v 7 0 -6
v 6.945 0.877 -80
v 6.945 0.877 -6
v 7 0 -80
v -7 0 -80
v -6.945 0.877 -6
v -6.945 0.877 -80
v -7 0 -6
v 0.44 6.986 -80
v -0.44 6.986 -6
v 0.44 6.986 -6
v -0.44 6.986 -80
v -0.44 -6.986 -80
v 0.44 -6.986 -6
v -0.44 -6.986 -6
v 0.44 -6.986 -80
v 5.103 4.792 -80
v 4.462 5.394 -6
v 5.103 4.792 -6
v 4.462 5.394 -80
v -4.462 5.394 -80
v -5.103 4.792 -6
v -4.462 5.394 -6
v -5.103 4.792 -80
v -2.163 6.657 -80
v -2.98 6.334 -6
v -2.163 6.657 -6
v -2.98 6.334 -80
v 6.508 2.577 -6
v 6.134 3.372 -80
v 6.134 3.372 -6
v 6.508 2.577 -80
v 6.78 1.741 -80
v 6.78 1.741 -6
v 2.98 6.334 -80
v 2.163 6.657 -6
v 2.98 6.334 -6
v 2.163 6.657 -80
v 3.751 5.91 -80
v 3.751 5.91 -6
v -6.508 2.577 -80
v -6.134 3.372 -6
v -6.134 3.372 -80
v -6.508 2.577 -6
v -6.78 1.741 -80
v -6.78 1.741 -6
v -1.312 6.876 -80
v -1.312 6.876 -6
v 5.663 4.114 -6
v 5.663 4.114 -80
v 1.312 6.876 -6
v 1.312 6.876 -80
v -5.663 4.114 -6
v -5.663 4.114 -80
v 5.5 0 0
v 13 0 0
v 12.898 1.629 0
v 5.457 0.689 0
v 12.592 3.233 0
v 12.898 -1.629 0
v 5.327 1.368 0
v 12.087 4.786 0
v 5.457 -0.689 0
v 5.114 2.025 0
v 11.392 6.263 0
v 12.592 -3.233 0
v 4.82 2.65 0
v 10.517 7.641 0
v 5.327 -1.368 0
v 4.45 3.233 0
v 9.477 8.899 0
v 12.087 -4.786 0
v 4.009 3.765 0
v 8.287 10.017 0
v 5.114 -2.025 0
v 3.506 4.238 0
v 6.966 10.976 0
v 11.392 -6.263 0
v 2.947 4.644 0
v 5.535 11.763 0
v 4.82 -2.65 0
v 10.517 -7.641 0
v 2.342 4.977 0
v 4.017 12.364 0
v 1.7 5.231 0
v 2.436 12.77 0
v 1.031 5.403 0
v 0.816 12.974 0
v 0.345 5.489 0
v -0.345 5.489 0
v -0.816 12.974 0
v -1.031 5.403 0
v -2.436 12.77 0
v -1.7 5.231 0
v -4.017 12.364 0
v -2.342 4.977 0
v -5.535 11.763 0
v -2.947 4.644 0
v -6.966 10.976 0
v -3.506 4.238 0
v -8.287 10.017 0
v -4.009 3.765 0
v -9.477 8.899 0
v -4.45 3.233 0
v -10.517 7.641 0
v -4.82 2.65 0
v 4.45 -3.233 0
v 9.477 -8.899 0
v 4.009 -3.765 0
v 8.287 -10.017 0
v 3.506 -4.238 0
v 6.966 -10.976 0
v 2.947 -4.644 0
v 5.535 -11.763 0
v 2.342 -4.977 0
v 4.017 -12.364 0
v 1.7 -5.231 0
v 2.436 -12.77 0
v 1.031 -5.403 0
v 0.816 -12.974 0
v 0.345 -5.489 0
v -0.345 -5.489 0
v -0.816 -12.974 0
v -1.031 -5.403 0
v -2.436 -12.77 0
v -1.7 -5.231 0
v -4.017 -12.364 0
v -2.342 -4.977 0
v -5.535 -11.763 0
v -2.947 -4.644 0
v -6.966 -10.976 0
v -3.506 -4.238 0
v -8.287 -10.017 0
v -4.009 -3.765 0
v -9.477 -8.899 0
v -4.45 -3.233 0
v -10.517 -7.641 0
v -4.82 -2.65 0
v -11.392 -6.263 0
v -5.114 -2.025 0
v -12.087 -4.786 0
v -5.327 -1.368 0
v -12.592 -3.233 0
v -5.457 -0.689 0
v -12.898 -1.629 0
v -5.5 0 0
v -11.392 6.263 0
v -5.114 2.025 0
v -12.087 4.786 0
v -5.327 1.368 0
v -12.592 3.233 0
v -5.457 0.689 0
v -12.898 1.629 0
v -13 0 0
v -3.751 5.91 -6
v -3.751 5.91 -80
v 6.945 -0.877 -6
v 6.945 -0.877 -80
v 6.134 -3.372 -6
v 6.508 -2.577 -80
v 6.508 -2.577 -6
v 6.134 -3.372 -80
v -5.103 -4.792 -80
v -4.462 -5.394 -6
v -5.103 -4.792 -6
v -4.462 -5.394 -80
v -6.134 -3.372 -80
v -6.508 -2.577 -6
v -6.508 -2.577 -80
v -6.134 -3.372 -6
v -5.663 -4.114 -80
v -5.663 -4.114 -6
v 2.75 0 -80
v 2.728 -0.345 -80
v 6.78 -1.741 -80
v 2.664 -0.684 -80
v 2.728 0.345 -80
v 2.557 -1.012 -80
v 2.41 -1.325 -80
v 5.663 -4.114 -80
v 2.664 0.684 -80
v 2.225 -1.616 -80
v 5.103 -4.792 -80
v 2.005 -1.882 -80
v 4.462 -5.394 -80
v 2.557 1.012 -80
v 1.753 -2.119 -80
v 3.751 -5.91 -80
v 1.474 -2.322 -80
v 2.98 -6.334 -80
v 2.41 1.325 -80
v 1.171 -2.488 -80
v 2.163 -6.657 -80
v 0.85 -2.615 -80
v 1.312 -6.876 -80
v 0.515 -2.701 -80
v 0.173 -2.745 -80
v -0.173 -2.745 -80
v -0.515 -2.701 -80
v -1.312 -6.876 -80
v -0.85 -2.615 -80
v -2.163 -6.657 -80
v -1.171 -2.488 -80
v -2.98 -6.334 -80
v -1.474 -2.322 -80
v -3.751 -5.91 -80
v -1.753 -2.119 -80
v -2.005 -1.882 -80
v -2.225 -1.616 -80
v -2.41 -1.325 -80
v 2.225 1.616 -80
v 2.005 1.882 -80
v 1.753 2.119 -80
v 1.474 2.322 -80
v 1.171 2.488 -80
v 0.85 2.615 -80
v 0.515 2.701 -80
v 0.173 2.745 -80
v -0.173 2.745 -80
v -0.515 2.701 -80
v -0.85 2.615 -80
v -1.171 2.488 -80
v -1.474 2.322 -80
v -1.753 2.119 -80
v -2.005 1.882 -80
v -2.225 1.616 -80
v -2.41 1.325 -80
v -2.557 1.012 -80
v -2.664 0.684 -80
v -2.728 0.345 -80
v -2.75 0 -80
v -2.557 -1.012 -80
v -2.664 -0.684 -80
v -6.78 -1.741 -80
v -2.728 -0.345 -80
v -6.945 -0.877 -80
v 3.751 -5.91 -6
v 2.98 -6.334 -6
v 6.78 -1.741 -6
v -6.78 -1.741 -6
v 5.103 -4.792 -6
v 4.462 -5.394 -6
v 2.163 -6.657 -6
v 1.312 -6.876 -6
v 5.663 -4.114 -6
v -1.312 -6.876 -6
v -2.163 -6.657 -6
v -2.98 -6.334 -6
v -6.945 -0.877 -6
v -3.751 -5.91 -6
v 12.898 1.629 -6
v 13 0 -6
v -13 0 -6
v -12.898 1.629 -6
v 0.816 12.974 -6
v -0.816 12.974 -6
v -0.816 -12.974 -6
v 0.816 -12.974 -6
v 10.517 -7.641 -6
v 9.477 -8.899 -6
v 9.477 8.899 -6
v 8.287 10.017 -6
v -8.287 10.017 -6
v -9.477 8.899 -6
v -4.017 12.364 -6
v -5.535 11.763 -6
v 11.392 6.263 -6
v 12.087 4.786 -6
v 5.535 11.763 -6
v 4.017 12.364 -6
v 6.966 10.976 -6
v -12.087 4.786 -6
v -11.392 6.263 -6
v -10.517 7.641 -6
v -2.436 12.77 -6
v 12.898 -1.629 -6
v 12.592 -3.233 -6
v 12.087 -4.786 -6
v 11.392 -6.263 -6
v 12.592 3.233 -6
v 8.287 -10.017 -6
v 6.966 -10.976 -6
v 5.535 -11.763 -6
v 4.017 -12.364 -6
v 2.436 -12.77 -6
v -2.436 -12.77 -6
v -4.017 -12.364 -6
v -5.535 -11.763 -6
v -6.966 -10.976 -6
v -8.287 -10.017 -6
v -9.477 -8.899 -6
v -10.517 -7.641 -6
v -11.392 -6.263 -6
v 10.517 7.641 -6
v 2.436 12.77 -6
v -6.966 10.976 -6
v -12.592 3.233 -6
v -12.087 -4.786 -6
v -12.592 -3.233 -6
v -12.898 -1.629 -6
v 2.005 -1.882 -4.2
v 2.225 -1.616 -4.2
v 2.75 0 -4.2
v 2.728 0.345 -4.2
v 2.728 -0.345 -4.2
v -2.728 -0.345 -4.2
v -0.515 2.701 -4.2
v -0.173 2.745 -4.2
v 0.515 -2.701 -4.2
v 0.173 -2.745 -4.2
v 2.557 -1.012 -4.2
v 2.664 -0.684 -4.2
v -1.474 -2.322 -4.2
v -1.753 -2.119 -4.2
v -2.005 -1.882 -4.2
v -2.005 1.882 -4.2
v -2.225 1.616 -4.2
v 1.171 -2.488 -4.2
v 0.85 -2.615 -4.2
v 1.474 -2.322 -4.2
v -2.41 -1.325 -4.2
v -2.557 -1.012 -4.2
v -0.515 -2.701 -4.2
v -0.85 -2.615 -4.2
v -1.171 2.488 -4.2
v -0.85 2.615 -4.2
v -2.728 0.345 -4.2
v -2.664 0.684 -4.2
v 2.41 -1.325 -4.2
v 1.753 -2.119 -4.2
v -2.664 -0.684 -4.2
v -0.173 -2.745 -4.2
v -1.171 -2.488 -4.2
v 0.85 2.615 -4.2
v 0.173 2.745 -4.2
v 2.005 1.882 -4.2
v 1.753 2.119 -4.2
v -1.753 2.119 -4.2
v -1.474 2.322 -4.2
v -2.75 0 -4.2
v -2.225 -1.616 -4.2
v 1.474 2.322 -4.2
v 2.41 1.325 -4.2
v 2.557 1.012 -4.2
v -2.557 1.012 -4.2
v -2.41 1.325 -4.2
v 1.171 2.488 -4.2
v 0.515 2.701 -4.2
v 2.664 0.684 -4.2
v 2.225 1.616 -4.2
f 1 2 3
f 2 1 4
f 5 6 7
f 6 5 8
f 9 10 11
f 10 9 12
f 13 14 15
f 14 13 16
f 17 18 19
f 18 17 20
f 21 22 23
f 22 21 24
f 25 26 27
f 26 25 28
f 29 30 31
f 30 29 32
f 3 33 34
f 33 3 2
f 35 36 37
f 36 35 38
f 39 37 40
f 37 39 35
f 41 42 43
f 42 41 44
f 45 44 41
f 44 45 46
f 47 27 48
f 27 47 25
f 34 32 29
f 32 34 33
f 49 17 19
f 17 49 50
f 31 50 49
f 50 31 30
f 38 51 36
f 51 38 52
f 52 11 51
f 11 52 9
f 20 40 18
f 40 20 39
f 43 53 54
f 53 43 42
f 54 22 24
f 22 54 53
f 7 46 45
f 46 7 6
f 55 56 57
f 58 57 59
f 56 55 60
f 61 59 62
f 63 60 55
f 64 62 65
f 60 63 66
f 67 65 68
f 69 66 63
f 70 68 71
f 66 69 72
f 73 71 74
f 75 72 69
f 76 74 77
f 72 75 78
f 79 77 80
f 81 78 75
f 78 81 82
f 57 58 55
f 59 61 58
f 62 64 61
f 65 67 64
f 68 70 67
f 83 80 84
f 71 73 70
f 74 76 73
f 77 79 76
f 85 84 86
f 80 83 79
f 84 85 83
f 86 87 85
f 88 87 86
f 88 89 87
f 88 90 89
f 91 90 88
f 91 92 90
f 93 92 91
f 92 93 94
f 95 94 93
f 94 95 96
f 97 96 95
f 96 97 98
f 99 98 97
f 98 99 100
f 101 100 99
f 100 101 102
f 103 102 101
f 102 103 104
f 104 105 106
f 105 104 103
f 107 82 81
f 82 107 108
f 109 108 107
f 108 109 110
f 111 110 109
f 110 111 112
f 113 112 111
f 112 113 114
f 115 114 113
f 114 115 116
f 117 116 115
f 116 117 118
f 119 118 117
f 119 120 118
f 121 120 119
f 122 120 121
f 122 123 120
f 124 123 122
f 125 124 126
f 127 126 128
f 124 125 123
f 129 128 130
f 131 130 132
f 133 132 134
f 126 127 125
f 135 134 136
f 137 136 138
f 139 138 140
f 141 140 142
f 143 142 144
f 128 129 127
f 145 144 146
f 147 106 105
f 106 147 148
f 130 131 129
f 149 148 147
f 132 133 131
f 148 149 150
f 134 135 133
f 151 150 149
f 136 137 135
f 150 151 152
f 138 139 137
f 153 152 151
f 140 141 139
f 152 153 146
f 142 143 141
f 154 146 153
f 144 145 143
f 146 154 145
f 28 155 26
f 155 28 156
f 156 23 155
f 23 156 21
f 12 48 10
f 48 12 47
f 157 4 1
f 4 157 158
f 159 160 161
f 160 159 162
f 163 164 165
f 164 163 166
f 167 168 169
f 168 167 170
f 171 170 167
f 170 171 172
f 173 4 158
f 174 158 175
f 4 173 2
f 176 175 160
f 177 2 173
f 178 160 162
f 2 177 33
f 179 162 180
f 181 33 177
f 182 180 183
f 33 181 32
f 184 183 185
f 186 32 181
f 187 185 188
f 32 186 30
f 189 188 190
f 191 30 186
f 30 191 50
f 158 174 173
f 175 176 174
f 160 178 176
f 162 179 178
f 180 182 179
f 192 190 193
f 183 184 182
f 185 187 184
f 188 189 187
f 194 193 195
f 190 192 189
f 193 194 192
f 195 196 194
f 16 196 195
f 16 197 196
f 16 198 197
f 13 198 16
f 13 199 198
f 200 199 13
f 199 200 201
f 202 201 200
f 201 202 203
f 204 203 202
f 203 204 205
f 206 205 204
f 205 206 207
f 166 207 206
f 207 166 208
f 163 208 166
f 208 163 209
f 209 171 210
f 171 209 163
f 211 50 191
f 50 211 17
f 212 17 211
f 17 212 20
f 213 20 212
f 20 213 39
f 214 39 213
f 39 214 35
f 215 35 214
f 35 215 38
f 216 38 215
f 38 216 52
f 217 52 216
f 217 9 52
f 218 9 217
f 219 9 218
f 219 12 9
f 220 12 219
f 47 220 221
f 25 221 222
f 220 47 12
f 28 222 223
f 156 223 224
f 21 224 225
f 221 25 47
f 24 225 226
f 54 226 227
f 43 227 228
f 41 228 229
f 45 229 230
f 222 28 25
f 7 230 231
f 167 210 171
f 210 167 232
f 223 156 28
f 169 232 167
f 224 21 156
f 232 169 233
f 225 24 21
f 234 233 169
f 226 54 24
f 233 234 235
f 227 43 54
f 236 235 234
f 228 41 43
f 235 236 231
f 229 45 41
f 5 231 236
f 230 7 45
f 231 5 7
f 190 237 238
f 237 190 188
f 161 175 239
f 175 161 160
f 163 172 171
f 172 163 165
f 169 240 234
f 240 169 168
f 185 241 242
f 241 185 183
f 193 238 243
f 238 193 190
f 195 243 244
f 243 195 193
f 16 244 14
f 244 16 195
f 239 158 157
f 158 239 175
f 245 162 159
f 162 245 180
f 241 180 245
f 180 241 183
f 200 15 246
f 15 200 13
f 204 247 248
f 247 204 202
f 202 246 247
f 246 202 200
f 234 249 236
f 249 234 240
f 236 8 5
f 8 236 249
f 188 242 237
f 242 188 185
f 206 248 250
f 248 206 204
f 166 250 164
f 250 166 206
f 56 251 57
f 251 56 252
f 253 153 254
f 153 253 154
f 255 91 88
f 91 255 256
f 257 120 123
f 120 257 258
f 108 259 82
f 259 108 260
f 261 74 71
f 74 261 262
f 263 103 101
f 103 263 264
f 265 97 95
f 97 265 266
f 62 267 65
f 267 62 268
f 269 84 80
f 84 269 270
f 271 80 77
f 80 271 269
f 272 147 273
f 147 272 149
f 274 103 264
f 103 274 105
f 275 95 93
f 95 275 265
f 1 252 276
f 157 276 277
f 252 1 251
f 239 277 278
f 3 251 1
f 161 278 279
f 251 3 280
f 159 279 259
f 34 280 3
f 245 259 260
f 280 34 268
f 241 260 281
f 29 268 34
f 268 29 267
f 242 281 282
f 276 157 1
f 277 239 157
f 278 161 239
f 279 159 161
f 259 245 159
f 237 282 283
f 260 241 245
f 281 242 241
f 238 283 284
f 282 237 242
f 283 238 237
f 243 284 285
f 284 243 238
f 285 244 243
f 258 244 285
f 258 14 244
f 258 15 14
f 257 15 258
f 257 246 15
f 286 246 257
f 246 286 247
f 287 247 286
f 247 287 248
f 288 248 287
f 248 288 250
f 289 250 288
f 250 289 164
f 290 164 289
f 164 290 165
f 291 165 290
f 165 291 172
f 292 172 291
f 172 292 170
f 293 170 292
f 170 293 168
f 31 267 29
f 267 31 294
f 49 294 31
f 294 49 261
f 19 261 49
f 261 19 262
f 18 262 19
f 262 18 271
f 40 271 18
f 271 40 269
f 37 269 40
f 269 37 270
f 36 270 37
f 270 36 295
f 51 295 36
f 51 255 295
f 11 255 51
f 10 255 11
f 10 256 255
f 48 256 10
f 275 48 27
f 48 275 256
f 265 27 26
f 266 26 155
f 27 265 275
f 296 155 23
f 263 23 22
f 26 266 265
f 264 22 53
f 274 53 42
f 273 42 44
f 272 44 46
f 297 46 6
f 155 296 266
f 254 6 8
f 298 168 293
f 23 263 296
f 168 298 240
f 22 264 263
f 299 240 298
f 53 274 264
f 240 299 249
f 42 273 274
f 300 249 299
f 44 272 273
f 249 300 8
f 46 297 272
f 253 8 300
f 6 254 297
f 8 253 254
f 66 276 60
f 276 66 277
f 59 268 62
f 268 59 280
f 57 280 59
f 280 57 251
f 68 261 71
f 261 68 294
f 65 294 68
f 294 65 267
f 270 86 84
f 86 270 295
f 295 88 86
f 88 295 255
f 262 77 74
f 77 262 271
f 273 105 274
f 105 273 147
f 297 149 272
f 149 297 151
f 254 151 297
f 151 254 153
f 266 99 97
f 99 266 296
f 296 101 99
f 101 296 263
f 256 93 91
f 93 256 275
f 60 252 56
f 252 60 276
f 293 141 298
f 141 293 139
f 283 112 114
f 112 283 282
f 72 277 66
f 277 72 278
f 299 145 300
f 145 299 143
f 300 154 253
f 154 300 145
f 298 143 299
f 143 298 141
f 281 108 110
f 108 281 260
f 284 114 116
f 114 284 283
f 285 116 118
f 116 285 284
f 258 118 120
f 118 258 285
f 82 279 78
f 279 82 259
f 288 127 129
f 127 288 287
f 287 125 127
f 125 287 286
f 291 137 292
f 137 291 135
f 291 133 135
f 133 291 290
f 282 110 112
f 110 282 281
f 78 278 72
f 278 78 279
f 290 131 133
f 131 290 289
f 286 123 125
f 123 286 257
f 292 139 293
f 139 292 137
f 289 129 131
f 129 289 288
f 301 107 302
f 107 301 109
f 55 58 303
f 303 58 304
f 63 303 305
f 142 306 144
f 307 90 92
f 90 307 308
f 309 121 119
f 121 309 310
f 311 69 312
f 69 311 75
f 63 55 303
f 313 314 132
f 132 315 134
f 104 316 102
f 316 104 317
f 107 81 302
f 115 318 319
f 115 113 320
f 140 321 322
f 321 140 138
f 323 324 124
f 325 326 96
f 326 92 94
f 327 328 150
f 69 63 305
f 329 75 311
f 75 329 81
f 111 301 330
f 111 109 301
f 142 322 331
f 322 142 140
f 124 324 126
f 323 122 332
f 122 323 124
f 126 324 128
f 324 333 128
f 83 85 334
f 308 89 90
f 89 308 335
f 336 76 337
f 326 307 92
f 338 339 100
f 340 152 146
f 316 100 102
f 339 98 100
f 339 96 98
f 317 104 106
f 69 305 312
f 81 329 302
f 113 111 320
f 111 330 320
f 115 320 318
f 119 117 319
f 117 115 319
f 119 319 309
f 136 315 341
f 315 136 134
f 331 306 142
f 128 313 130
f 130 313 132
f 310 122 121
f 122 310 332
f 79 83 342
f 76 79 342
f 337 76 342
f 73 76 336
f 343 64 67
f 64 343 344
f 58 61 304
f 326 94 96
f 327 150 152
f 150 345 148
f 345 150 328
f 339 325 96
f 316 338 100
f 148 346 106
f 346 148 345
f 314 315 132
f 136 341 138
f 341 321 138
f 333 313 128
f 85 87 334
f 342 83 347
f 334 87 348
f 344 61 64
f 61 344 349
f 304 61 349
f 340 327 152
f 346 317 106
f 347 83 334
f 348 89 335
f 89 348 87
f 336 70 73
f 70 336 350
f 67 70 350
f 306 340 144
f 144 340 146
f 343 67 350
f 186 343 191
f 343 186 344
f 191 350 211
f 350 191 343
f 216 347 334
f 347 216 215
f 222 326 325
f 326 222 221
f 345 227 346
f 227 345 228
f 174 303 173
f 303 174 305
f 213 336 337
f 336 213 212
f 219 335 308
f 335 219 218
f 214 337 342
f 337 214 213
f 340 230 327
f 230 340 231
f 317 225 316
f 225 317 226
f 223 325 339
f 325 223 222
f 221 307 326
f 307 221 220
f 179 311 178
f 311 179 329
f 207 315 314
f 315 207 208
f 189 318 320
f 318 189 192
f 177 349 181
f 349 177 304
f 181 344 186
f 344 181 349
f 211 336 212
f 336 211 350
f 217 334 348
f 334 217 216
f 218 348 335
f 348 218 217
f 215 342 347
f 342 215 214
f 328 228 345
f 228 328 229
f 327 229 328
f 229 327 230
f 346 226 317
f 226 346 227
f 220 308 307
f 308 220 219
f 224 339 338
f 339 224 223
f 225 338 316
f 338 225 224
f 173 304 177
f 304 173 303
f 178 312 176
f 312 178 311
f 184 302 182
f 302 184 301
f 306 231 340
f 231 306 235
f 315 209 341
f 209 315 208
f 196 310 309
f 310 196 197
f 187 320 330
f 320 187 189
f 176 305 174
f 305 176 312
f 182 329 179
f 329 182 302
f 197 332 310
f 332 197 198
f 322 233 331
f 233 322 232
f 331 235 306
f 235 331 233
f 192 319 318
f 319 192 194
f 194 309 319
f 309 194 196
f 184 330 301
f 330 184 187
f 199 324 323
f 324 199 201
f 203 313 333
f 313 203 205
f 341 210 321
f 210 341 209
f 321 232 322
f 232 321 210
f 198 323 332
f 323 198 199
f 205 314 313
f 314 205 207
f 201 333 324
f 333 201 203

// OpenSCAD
$fn = 50;


difference() {
	union() {
		translate(v = [0, 0, -80.0000000000]) {
			cylinder(h = 80, r = 7.0000000000);
		}
		translate(v = [0, 0, -6.0000000000]) {
			cylinder(h = 6, r = 13.0000000000);
		}
	}
	union() {
		translate(v = [0, 0, 0]) {
			rotate(a = [0, 0, 0]) {
				difference() {
					union() {
						#translate(v = [0, 0, -80.0000000000]) {
							cylinder(h = 80, r = 2.2500000000);
						}
						#translate(v = [0, 0, -4.2000000000]) {
							cylinder(h = 4.2000000000, r = 7.0000000000, r1 = 2.7500000000, r2 = 5.5000000000);
						}
						#translate(v = [0, 0, -80.0000000000]) {
							cylinder(h = 80, r = 2.7500000000);
						}
						#translate(v = [0, 0, -80.0000000000]) {
							cylinder(h = 80, r = 2.2500000000);
						}
					}
					union();
				}
			}
		}
	}
}
